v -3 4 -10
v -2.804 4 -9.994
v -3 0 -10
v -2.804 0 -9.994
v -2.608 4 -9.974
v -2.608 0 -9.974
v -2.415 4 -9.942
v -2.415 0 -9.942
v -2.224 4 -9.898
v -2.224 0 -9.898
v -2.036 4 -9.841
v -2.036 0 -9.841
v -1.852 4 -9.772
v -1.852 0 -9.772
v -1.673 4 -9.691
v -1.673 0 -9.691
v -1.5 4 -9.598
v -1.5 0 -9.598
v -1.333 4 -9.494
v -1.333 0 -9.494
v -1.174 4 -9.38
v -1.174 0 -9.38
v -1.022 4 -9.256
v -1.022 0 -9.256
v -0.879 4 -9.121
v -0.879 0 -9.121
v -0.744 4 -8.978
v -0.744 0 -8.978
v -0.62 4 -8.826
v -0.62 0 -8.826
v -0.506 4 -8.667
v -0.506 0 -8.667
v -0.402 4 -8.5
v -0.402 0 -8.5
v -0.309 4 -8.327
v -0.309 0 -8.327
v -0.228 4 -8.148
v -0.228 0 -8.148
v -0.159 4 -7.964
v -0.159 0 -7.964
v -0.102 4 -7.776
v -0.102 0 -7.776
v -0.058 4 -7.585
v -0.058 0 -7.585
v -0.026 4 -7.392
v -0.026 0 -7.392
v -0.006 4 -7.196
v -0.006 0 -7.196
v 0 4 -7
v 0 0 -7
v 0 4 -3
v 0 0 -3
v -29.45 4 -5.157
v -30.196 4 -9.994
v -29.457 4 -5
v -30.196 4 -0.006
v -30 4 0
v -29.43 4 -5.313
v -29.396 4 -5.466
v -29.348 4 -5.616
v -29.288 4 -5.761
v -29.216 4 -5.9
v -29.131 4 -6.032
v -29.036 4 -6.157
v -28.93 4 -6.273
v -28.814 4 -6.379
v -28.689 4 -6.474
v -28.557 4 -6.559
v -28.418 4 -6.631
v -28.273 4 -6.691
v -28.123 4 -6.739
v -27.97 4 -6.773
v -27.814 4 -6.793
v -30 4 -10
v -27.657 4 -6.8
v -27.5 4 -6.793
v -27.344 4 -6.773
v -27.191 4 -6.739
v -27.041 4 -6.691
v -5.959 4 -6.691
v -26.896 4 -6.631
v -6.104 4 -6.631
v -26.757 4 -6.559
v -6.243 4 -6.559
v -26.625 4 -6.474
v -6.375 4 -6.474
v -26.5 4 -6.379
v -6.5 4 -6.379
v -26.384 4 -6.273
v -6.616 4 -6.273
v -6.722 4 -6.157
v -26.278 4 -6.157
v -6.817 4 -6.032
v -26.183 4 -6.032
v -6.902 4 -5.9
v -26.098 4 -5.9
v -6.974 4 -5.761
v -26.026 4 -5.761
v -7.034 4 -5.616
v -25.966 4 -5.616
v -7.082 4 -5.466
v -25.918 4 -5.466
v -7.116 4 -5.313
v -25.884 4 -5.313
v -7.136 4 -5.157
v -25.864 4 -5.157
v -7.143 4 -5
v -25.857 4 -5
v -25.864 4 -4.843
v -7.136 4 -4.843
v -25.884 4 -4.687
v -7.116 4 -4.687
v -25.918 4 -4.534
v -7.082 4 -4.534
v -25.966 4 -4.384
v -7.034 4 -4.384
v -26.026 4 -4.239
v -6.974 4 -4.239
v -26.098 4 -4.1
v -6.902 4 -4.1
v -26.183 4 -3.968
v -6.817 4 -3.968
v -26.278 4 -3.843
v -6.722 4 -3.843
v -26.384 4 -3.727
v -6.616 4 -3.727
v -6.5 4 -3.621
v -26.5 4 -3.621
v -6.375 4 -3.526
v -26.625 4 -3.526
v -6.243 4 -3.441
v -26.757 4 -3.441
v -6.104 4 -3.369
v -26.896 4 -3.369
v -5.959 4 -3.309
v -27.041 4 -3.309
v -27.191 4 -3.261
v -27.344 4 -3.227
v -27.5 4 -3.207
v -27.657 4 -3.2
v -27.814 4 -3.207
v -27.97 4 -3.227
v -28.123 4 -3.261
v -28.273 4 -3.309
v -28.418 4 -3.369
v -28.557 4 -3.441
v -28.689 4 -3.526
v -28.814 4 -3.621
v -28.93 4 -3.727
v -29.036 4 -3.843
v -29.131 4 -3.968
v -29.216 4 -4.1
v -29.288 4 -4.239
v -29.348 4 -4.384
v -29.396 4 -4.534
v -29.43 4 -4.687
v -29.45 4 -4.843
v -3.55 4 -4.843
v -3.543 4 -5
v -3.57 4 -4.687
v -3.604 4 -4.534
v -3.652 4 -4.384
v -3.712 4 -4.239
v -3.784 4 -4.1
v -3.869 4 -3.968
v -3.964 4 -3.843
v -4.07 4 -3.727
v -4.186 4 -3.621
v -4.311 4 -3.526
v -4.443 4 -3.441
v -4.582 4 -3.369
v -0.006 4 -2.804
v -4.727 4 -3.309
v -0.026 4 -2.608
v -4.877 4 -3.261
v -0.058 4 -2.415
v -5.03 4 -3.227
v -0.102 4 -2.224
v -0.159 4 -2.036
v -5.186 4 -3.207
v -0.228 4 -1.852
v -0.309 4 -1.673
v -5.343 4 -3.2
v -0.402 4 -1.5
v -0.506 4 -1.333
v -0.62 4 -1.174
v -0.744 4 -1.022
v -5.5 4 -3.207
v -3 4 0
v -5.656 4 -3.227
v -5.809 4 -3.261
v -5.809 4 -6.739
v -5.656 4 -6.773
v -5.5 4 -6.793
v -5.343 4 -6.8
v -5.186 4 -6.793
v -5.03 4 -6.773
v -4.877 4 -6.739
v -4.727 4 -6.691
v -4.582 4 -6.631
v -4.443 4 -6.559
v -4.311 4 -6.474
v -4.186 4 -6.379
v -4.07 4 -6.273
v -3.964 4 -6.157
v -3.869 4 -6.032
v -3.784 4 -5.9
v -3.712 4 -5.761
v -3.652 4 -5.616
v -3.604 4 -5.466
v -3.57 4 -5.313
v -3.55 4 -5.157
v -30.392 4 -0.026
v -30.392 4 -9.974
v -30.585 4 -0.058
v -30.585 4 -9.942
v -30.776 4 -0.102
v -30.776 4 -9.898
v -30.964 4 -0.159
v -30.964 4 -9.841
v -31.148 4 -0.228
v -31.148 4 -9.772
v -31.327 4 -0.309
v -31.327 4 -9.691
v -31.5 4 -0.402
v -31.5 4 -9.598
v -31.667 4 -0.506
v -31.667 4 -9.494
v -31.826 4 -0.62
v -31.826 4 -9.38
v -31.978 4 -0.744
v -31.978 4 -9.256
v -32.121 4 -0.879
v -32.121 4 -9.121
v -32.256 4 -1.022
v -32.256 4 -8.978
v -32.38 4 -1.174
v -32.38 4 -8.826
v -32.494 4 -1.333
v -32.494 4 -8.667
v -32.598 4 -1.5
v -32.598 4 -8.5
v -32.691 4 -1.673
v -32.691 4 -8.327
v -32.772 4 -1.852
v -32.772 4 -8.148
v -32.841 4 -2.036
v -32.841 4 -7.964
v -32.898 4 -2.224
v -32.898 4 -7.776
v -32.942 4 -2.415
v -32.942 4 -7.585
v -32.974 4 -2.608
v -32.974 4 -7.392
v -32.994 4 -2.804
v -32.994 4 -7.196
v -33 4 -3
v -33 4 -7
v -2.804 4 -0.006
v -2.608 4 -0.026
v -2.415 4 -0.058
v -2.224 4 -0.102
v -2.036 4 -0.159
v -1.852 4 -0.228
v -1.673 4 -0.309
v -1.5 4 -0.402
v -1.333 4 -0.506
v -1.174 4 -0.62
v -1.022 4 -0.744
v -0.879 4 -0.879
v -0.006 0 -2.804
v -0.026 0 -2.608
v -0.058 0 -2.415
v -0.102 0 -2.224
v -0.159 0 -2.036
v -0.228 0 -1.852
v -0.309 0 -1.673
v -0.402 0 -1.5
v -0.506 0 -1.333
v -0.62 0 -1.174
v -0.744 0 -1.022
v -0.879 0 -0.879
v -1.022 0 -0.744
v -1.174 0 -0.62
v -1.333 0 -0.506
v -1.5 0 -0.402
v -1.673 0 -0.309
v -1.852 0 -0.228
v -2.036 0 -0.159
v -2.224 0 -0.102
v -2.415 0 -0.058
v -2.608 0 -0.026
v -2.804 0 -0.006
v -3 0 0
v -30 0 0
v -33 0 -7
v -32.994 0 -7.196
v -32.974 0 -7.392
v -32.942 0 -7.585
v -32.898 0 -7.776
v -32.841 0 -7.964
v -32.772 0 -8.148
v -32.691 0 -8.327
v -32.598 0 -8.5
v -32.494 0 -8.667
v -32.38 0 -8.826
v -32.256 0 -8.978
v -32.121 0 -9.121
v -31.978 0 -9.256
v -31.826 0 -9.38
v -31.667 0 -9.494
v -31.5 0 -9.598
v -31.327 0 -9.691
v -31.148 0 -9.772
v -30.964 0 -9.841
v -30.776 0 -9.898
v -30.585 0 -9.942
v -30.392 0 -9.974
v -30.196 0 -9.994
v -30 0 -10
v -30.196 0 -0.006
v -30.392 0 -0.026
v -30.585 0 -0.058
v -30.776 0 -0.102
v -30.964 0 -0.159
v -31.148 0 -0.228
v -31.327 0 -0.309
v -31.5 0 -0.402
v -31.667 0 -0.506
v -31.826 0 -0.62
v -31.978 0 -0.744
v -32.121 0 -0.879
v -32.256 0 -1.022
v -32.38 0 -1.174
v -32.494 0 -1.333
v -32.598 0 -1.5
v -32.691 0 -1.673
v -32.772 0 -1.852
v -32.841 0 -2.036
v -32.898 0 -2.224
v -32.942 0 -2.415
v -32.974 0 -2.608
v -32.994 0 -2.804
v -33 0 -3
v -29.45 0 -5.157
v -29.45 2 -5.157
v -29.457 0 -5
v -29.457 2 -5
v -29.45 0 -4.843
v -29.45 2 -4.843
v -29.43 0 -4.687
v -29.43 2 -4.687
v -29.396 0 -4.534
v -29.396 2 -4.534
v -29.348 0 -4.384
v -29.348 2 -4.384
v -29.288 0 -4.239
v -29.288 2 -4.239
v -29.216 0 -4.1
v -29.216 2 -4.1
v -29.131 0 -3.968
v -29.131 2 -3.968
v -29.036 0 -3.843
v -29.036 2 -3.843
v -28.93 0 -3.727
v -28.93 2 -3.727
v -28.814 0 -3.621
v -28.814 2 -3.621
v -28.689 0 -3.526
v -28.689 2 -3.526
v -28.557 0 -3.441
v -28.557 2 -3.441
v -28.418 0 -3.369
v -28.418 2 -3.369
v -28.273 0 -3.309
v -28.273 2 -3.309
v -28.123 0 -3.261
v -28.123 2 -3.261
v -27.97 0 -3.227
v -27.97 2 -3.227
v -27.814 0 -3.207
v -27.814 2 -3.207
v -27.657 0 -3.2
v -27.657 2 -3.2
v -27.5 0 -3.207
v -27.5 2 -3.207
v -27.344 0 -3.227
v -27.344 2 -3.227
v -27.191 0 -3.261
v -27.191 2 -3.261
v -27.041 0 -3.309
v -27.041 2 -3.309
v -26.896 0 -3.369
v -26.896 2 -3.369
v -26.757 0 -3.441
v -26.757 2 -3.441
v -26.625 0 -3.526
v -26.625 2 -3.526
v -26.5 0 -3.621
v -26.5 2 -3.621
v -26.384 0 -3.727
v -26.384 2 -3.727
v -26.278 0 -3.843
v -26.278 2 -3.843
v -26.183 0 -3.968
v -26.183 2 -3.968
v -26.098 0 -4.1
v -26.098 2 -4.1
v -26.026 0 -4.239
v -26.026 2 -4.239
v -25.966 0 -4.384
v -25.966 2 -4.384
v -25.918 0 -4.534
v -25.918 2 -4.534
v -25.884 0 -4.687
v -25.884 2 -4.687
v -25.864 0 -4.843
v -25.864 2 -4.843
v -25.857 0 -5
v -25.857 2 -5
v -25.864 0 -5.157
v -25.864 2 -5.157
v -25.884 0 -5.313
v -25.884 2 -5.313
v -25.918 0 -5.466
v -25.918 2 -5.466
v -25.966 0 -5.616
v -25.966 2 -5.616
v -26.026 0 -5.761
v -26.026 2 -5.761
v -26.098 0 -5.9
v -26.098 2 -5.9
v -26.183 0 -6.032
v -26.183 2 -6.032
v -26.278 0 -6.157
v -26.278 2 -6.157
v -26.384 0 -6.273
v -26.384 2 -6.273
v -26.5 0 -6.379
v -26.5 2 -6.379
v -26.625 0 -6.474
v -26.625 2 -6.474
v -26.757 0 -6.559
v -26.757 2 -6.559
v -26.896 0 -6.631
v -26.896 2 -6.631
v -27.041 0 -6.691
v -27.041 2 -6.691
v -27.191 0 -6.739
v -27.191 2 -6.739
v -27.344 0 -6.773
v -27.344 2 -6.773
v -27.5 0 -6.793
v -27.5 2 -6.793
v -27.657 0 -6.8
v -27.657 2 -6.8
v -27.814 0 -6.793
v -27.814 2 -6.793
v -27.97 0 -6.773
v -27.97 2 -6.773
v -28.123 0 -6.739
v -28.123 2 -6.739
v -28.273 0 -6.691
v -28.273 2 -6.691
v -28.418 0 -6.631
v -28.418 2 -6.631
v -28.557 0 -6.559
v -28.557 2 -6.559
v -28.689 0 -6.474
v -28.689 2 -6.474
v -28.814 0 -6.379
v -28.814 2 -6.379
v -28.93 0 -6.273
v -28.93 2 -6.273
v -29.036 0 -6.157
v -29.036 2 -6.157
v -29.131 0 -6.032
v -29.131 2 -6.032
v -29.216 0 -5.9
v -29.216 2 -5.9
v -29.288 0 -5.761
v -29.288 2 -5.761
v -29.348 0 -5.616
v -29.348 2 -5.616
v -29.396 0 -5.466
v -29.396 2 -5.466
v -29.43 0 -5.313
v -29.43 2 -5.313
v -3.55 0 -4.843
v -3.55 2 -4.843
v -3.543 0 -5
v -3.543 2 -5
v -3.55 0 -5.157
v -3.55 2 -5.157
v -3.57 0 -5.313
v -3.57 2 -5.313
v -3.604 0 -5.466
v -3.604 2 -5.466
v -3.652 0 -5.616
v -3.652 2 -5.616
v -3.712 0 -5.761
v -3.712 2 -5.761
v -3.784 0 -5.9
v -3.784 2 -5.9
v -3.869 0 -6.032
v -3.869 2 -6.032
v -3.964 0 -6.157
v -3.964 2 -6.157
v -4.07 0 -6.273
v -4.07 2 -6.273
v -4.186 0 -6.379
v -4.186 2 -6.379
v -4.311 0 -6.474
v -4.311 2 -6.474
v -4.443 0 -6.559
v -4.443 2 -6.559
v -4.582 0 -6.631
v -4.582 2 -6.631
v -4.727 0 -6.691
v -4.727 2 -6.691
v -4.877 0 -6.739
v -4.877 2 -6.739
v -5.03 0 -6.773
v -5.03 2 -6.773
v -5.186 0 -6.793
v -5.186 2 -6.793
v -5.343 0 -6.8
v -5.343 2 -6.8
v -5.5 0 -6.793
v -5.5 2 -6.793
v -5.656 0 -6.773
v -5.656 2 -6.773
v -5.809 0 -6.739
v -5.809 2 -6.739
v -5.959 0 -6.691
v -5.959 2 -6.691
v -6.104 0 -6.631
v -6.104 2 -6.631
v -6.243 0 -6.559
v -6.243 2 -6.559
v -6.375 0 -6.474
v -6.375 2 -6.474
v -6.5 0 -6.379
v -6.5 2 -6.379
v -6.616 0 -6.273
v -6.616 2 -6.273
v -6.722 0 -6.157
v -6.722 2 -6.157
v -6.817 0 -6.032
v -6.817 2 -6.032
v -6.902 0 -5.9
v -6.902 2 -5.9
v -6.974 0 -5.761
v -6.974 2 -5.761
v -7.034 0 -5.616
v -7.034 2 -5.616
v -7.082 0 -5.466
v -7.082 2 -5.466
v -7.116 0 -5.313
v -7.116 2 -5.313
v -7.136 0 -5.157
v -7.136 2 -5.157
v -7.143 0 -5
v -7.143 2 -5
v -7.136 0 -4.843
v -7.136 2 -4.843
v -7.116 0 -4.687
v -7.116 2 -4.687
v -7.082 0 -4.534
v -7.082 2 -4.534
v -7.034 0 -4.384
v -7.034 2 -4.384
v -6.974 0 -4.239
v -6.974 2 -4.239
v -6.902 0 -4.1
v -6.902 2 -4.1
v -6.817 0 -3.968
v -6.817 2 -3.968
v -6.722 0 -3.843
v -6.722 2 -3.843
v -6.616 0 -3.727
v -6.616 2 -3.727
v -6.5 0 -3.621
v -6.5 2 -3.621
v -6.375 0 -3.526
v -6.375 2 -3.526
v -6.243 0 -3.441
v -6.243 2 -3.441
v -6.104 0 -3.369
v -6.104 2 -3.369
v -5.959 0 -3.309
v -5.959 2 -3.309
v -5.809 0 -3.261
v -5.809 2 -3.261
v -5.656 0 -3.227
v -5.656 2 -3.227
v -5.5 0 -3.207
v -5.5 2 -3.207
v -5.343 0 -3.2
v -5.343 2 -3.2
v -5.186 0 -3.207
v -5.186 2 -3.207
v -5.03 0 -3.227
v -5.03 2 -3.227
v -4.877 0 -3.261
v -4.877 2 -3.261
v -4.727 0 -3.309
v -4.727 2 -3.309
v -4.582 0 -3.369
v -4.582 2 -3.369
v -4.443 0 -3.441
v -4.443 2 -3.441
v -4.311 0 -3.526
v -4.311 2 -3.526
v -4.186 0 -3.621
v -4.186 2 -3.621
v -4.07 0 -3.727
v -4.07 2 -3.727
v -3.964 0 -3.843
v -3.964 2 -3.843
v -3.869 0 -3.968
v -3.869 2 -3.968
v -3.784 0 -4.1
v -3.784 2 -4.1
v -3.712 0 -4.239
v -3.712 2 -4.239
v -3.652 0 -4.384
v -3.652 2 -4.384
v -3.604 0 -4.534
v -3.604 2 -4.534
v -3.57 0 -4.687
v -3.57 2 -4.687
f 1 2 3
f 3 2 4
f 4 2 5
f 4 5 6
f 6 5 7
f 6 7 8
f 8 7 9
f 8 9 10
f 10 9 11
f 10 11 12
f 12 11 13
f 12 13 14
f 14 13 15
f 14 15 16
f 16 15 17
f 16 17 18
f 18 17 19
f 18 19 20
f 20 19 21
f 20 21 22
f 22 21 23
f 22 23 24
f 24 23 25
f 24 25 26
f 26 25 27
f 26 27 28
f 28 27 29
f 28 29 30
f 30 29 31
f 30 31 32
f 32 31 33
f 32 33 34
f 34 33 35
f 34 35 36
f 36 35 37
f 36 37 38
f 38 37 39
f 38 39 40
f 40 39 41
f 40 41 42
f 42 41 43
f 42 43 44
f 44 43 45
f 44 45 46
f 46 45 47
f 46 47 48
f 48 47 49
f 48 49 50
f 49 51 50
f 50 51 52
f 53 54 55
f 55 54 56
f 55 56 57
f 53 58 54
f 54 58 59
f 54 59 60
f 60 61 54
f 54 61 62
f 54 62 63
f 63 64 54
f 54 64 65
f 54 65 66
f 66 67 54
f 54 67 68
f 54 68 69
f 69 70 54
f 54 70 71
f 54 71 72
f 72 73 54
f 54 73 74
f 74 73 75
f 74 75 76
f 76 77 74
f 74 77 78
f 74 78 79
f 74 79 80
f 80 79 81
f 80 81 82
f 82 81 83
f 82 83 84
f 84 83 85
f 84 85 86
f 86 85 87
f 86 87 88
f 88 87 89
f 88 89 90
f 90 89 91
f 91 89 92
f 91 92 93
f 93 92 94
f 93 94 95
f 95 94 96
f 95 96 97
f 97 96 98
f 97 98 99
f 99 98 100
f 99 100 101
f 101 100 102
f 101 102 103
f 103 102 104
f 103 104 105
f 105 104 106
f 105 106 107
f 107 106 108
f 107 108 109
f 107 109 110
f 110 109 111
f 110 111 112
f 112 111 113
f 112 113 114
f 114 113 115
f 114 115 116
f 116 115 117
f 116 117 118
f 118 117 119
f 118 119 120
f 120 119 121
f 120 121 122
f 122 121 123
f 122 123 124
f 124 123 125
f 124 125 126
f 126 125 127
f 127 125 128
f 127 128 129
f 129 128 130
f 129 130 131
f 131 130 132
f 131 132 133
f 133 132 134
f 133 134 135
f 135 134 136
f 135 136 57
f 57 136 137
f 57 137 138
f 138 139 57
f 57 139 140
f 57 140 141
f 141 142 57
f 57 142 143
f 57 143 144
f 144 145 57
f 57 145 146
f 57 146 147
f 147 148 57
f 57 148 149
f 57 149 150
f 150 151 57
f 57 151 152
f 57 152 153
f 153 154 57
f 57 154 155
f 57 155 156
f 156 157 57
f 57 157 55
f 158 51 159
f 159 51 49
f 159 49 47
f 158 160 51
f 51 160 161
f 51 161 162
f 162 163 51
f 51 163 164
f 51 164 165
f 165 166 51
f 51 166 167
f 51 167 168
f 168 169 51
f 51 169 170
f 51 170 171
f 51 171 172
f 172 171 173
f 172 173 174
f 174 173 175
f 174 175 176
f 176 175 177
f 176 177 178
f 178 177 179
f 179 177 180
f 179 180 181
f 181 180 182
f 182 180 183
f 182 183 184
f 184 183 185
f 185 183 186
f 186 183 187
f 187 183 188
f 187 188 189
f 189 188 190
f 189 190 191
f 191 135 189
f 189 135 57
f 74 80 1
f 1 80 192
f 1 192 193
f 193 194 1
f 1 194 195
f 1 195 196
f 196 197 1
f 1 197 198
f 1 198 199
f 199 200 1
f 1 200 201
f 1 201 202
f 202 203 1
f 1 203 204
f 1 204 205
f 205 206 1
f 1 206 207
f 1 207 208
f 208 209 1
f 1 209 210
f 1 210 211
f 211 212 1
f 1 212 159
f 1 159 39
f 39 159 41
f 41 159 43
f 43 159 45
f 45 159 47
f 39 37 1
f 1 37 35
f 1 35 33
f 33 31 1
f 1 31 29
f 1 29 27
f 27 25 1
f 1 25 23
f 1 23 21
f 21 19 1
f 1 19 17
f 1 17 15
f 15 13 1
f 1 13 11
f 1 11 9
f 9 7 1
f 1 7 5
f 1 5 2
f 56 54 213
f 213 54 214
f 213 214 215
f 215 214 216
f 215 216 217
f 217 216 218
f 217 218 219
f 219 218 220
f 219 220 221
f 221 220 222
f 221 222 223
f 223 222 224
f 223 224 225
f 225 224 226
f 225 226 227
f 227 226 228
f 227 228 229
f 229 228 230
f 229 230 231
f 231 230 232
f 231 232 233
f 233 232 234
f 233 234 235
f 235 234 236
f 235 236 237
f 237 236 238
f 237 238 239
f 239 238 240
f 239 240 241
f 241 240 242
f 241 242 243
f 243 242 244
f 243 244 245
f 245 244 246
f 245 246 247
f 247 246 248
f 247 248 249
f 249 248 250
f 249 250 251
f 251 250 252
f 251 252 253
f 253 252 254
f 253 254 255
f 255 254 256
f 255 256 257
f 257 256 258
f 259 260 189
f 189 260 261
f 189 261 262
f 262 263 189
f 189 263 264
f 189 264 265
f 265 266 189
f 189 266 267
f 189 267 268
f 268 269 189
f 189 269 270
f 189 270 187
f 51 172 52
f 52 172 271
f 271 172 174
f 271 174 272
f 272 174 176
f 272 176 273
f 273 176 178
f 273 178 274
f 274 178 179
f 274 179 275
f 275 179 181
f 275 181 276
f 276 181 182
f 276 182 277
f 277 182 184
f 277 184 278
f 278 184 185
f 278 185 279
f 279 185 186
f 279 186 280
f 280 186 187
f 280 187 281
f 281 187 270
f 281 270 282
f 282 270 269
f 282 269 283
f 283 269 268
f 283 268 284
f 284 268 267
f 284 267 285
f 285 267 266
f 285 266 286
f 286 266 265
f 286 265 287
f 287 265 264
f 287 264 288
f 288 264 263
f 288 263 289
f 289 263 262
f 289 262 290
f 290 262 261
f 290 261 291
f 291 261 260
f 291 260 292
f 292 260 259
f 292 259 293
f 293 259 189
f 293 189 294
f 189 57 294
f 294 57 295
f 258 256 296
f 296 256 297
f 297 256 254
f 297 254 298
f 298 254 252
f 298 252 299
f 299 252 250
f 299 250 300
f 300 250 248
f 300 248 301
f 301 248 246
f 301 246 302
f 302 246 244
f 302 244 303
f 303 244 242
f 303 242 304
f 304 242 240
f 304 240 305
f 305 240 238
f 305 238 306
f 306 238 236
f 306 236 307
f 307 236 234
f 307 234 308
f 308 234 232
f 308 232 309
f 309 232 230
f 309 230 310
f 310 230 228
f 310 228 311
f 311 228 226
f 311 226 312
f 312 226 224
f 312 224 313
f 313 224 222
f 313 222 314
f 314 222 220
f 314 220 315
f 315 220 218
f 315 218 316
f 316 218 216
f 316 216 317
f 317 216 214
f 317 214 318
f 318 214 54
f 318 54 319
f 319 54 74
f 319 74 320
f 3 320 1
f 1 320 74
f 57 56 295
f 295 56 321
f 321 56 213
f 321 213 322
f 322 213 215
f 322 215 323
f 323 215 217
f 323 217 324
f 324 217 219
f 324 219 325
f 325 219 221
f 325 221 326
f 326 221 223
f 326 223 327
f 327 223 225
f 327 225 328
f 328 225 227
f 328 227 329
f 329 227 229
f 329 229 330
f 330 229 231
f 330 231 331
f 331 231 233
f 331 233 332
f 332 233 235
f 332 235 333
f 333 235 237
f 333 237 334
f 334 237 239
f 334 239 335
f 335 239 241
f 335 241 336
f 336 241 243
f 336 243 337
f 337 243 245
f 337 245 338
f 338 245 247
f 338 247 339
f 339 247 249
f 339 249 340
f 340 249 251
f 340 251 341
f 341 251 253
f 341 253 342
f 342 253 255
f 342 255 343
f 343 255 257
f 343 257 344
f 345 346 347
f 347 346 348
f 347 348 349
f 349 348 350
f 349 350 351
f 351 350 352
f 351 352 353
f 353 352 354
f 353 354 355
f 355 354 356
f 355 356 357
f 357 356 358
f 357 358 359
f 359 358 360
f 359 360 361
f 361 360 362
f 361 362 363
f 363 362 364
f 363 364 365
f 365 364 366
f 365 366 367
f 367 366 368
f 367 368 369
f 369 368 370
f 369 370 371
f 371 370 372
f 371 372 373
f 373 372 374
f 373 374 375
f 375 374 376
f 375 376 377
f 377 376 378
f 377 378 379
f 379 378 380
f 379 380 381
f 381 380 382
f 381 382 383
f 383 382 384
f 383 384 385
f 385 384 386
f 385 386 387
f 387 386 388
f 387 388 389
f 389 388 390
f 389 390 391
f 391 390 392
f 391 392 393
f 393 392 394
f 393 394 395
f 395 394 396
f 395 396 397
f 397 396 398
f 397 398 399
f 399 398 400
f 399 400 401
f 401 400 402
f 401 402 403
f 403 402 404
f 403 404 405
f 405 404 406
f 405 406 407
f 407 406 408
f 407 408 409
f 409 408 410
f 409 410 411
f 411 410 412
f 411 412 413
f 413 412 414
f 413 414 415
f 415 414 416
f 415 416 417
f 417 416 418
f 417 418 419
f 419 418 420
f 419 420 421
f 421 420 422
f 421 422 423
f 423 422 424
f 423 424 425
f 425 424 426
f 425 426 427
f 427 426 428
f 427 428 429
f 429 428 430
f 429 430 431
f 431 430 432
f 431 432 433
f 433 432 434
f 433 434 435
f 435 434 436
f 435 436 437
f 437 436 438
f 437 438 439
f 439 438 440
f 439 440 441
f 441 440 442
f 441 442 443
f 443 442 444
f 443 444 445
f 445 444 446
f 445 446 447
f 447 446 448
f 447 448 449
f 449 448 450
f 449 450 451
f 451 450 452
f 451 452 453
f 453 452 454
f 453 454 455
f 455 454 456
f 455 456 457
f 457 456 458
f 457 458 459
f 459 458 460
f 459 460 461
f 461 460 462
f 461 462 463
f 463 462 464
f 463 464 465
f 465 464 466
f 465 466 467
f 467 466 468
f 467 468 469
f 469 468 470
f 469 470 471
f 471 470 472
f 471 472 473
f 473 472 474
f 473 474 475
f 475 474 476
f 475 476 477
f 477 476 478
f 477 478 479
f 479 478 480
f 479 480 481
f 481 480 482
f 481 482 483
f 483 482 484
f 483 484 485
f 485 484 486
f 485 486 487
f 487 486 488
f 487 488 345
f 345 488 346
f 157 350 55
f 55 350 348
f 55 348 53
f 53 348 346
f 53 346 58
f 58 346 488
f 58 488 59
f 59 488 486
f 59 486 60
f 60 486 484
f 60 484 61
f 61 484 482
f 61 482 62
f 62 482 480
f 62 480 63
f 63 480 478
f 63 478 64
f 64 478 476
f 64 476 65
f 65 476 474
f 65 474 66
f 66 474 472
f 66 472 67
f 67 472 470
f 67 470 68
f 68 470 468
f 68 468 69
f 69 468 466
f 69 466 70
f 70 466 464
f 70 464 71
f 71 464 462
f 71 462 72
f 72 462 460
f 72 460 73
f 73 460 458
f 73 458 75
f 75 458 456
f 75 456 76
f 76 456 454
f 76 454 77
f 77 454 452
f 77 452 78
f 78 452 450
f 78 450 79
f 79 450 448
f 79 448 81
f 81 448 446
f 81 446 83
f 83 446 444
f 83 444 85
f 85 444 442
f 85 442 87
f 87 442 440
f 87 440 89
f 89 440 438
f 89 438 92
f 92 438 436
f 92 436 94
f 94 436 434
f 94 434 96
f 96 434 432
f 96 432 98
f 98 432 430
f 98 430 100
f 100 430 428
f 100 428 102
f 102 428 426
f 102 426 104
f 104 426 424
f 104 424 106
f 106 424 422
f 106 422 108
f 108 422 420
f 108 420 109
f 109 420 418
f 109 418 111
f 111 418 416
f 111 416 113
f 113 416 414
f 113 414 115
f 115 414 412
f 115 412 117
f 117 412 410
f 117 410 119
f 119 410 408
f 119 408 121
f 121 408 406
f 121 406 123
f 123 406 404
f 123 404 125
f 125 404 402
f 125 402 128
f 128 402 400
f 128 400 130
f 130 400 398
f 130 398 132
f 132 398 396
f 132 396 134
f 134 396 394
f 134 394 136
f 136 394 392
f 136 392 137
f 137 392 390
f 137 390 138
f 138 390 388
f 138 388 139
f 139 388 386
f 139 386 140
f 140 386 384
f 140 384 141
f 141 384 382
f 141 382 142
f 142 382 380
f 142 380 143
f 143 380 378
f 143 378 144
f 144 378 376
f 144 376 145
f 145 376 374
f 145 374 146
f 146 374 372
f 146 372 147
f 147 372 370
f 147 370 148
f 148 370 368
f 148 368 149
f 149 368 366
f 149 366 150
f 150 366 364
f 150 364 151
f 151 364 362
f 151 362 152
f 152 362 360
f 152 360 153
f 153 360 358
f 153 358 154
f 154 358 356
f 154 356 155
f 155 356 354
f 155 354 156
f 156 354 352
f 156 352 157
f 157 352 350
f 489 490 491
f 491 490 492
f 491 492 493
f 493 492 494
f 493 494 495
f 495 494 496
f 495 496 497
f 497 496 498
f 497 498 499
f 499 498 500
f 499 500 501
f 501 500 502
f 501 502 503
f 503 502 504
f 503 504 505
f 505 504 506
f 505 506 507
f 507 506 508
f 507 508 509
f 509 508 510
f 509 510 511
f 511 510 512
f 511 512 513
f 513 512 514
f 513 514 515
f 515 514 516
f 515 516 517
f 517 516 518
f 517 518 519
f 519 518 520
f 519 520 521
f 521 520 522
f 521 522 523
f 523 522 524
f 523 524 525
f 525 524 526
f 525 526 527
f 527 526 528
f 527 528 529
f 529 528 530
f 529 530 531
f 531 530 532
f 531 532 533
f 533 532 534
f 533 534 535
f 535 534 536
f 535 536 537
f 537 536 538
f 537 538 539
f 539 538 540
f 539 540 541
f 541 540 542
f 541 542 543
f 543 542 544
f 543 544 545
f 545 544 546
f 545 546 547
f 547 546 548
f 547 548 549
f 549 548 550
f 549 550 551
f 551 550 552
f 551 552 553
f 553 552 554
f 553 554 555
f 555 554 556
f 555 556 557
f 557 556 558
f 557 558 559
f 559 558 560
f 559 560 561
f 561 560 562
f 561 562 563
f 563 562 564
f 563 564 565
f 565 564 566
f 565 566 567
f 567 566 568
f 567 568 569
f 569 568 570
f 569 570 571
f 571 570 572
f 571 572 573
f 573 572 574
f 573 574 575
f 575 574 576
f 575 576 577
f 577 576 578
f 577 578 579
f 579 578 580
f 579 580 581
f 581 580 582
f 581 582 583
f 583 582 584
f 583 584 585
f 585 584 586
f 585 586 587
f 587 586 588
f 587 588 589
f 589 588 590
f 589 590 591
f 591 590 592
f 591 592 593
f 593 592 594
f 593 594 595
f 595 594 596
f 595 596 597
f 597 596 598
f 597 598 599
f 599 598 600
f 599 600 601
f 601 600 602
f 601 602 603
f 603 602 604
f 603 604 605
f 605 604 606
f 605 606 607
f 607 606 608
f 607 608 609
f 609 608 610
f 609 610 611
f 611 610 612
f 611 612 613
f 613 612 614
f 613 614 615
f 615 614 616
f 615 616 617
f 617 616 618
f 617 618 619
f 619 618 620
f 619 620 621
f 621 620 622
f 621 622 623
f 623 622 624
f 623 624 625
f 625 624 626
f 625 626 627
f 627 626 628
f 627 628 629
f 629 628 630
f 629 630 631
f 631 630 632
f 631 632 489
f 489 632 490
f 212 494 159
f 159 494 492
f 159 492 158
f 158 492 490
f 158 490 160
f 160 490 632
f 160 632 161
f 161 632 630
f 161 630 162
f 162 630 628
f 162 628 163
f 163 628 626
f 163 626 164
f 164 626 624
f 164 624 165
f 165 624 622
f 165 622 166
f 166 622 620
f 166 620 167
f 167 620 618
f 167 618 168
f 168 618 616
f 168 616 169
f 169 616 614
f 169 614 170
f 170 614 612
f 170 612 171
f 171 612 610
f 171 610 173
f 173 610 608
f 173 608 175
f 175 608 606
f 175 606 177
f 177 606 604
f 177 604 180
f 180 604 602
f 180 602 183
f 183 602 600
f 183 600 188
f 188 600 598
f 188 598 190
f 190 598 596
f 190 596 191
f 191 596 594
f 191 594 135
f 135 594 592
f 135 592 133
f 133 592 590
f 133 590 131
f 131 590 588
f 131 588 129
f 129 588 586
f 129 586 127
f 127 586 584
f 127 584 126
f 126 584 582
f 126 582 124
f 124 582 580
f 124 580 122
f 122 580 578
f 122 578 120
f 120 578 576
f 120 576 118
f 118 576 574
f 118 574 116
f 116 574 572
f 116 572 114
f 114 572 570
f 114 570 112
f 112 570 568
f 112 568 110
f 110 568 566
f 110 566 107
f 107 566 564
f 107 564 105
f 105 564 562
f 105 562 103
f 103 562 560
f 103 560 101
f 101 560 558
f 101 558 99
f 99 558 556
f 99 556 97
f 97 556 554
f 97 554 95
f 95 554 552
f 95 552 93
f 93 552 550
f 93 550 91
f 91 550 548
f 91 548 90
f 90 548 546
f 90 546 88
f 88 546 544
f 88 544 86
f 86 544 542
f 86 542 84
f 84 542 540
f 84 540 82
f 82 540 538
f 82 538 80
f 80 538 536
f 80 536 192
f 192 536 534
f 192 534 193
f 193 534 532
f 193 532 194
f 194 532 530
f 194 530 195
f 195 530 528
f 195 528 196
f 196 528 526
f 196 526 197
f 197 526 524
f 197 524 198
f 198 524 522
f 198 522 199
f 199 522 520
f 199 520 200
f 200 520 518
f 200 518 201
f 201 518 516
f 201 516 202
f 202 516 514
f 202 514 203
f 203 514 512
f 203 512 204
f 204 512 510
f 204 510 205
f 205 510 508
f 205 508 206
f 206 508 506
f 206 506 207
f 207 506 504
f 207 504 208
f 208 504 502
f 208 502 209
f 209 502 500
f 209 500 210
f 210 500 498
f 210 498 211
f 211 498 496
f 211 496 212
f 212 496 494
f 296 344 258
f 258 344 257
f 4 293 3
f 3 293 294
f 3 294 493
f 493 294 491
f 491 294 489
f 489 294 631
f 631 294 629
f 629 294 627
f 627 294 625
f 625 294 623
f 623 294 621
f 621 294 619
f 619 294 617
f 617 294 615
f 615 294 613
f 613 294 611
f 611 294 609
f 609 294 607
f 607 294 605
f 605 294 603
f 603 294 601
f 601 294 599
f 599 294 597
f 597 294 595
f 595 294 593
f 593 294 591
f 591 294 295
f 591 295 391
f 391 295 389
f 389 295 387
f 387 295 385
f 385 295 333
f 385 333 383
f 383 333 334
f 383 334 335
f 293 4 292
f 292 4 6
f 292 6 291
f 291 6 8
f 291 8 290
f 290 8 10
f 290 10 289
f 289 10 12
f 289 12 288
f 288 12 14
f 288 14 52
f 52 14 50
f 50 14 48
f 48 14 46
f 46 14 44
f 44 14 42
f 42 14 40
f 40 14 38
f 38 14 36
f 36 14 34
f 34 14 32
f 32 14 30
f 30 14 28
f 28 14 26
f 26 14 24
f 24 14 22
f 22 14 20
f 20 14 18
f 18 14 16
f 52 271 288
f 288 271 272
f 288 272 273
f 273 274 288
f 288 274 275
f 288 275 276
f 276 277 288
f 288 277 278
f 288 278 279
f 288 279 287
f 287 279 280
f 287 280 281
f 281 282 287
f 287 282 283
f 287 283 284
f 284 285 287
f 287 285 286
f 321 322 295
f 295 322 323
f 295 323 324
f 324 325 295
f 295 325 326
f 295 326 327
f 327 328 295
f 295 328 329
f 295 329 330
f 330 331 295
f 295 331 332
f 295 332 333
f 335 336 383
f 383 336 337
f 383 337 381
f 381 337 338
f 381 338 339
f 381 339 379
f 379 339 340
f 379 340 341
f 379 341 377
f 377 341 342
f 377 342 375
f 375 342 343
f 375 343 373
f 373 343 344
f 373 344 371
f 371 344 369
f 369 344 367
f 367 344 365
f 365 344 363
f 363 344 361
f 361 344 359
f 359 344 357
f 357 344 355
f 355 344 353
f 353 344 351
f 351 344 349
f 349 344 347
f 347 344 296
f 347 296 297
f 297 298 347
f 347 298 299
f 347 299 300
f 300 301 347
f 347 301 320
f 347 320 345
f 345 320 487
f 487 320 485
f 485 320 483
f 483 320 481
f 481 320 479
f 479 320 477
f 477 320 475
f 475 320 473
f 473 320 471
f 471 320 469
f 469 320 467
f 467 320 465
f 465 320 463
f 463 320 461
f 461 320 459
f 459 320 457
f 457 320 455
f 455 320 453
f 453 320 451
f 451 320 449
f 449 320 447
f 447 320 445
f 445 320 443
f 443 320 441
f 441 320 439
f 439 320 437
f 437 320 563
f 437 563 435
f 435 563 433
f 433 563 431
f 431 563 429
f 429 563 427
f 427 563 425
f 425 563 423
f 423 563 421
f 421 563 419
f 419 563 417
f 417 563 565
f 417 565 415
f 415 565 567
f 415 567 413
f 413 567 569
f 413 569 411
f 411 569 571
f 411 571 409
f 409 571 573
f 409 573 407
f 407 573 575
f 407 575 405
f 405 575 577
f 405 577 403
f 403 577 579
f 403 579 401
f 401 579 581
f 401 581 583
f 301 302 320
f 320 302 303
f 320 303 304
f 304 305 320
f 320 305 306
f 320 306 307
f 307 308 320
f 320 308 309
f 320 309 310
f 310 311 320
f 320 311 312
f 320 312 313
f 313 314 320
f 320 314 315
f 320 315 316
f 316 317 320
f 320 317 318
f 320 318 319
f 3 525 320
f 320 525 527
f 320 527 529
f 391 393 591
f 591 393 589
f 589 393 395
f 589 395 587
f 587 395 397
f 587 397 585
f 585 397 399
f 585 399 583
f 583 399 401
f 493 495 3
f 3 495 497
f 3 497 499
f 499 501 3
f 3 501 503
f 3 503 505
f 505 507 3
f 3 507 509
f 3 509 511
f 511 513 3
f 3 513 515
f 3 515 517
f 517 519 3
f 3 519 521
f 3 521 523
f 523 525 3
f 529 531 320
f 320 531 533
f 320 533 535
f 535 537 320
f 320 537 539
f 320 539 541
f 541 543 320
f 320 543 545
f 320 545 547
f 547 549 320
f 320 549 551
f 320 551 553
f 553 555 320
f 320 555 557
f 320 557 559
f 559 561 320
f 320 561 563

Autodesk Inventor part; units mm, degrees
ref_plane "YZ Plane" through (0, 0, 0) normal (1, 0, 0) x (0, 1, 0)
ref_plane "XZ Plane" through (0, 0, 0) normal (0, 1, 0) x (-1, 0, 0)
sketch "Sketch1" plane through (0, 0, 0) normal (0, 1, 0) x (-1, 0, 0)
  line L0 (0, 0) -> (33, 0)
  line L1 (33, 0) -> (33, -10)
  line L2 (33, -10) -> (0, -10)
  line L3 (0, -10) -> (0, 0)
  dimension "d0" = 33
  dimension "d1" = 10
extrude "Extrusion1" add sketch "Sketch1" along normal blind 4
sketch "Sketch2" plane through (0, 4, 0) normal (0, 1, 0) x (1, 0, 0)
  circle A0 centre (-5.343, 5) radius 1.8
  point P0 (0, 0)
  dimension "d9" = 3.6
extrude "Extrusion2" cut sketch "Sketch2" against normal blind 4
ref_plane "Work Plane1" through (-16.5, 0, 0) normal (1, 0, 0) x (0, 0, -1)
mirror "Mirror1" about plane through (-16.5, 0, 0) normal (1, 0, 0) of "Extrusion2"
fillet "Fillet1" radius 3 4 edges at (-33, 2, 0) (-33, 2, -10) (0, 2, 0) (0, 2, -10)
properties part number "9 peristaltic pump clamp"
